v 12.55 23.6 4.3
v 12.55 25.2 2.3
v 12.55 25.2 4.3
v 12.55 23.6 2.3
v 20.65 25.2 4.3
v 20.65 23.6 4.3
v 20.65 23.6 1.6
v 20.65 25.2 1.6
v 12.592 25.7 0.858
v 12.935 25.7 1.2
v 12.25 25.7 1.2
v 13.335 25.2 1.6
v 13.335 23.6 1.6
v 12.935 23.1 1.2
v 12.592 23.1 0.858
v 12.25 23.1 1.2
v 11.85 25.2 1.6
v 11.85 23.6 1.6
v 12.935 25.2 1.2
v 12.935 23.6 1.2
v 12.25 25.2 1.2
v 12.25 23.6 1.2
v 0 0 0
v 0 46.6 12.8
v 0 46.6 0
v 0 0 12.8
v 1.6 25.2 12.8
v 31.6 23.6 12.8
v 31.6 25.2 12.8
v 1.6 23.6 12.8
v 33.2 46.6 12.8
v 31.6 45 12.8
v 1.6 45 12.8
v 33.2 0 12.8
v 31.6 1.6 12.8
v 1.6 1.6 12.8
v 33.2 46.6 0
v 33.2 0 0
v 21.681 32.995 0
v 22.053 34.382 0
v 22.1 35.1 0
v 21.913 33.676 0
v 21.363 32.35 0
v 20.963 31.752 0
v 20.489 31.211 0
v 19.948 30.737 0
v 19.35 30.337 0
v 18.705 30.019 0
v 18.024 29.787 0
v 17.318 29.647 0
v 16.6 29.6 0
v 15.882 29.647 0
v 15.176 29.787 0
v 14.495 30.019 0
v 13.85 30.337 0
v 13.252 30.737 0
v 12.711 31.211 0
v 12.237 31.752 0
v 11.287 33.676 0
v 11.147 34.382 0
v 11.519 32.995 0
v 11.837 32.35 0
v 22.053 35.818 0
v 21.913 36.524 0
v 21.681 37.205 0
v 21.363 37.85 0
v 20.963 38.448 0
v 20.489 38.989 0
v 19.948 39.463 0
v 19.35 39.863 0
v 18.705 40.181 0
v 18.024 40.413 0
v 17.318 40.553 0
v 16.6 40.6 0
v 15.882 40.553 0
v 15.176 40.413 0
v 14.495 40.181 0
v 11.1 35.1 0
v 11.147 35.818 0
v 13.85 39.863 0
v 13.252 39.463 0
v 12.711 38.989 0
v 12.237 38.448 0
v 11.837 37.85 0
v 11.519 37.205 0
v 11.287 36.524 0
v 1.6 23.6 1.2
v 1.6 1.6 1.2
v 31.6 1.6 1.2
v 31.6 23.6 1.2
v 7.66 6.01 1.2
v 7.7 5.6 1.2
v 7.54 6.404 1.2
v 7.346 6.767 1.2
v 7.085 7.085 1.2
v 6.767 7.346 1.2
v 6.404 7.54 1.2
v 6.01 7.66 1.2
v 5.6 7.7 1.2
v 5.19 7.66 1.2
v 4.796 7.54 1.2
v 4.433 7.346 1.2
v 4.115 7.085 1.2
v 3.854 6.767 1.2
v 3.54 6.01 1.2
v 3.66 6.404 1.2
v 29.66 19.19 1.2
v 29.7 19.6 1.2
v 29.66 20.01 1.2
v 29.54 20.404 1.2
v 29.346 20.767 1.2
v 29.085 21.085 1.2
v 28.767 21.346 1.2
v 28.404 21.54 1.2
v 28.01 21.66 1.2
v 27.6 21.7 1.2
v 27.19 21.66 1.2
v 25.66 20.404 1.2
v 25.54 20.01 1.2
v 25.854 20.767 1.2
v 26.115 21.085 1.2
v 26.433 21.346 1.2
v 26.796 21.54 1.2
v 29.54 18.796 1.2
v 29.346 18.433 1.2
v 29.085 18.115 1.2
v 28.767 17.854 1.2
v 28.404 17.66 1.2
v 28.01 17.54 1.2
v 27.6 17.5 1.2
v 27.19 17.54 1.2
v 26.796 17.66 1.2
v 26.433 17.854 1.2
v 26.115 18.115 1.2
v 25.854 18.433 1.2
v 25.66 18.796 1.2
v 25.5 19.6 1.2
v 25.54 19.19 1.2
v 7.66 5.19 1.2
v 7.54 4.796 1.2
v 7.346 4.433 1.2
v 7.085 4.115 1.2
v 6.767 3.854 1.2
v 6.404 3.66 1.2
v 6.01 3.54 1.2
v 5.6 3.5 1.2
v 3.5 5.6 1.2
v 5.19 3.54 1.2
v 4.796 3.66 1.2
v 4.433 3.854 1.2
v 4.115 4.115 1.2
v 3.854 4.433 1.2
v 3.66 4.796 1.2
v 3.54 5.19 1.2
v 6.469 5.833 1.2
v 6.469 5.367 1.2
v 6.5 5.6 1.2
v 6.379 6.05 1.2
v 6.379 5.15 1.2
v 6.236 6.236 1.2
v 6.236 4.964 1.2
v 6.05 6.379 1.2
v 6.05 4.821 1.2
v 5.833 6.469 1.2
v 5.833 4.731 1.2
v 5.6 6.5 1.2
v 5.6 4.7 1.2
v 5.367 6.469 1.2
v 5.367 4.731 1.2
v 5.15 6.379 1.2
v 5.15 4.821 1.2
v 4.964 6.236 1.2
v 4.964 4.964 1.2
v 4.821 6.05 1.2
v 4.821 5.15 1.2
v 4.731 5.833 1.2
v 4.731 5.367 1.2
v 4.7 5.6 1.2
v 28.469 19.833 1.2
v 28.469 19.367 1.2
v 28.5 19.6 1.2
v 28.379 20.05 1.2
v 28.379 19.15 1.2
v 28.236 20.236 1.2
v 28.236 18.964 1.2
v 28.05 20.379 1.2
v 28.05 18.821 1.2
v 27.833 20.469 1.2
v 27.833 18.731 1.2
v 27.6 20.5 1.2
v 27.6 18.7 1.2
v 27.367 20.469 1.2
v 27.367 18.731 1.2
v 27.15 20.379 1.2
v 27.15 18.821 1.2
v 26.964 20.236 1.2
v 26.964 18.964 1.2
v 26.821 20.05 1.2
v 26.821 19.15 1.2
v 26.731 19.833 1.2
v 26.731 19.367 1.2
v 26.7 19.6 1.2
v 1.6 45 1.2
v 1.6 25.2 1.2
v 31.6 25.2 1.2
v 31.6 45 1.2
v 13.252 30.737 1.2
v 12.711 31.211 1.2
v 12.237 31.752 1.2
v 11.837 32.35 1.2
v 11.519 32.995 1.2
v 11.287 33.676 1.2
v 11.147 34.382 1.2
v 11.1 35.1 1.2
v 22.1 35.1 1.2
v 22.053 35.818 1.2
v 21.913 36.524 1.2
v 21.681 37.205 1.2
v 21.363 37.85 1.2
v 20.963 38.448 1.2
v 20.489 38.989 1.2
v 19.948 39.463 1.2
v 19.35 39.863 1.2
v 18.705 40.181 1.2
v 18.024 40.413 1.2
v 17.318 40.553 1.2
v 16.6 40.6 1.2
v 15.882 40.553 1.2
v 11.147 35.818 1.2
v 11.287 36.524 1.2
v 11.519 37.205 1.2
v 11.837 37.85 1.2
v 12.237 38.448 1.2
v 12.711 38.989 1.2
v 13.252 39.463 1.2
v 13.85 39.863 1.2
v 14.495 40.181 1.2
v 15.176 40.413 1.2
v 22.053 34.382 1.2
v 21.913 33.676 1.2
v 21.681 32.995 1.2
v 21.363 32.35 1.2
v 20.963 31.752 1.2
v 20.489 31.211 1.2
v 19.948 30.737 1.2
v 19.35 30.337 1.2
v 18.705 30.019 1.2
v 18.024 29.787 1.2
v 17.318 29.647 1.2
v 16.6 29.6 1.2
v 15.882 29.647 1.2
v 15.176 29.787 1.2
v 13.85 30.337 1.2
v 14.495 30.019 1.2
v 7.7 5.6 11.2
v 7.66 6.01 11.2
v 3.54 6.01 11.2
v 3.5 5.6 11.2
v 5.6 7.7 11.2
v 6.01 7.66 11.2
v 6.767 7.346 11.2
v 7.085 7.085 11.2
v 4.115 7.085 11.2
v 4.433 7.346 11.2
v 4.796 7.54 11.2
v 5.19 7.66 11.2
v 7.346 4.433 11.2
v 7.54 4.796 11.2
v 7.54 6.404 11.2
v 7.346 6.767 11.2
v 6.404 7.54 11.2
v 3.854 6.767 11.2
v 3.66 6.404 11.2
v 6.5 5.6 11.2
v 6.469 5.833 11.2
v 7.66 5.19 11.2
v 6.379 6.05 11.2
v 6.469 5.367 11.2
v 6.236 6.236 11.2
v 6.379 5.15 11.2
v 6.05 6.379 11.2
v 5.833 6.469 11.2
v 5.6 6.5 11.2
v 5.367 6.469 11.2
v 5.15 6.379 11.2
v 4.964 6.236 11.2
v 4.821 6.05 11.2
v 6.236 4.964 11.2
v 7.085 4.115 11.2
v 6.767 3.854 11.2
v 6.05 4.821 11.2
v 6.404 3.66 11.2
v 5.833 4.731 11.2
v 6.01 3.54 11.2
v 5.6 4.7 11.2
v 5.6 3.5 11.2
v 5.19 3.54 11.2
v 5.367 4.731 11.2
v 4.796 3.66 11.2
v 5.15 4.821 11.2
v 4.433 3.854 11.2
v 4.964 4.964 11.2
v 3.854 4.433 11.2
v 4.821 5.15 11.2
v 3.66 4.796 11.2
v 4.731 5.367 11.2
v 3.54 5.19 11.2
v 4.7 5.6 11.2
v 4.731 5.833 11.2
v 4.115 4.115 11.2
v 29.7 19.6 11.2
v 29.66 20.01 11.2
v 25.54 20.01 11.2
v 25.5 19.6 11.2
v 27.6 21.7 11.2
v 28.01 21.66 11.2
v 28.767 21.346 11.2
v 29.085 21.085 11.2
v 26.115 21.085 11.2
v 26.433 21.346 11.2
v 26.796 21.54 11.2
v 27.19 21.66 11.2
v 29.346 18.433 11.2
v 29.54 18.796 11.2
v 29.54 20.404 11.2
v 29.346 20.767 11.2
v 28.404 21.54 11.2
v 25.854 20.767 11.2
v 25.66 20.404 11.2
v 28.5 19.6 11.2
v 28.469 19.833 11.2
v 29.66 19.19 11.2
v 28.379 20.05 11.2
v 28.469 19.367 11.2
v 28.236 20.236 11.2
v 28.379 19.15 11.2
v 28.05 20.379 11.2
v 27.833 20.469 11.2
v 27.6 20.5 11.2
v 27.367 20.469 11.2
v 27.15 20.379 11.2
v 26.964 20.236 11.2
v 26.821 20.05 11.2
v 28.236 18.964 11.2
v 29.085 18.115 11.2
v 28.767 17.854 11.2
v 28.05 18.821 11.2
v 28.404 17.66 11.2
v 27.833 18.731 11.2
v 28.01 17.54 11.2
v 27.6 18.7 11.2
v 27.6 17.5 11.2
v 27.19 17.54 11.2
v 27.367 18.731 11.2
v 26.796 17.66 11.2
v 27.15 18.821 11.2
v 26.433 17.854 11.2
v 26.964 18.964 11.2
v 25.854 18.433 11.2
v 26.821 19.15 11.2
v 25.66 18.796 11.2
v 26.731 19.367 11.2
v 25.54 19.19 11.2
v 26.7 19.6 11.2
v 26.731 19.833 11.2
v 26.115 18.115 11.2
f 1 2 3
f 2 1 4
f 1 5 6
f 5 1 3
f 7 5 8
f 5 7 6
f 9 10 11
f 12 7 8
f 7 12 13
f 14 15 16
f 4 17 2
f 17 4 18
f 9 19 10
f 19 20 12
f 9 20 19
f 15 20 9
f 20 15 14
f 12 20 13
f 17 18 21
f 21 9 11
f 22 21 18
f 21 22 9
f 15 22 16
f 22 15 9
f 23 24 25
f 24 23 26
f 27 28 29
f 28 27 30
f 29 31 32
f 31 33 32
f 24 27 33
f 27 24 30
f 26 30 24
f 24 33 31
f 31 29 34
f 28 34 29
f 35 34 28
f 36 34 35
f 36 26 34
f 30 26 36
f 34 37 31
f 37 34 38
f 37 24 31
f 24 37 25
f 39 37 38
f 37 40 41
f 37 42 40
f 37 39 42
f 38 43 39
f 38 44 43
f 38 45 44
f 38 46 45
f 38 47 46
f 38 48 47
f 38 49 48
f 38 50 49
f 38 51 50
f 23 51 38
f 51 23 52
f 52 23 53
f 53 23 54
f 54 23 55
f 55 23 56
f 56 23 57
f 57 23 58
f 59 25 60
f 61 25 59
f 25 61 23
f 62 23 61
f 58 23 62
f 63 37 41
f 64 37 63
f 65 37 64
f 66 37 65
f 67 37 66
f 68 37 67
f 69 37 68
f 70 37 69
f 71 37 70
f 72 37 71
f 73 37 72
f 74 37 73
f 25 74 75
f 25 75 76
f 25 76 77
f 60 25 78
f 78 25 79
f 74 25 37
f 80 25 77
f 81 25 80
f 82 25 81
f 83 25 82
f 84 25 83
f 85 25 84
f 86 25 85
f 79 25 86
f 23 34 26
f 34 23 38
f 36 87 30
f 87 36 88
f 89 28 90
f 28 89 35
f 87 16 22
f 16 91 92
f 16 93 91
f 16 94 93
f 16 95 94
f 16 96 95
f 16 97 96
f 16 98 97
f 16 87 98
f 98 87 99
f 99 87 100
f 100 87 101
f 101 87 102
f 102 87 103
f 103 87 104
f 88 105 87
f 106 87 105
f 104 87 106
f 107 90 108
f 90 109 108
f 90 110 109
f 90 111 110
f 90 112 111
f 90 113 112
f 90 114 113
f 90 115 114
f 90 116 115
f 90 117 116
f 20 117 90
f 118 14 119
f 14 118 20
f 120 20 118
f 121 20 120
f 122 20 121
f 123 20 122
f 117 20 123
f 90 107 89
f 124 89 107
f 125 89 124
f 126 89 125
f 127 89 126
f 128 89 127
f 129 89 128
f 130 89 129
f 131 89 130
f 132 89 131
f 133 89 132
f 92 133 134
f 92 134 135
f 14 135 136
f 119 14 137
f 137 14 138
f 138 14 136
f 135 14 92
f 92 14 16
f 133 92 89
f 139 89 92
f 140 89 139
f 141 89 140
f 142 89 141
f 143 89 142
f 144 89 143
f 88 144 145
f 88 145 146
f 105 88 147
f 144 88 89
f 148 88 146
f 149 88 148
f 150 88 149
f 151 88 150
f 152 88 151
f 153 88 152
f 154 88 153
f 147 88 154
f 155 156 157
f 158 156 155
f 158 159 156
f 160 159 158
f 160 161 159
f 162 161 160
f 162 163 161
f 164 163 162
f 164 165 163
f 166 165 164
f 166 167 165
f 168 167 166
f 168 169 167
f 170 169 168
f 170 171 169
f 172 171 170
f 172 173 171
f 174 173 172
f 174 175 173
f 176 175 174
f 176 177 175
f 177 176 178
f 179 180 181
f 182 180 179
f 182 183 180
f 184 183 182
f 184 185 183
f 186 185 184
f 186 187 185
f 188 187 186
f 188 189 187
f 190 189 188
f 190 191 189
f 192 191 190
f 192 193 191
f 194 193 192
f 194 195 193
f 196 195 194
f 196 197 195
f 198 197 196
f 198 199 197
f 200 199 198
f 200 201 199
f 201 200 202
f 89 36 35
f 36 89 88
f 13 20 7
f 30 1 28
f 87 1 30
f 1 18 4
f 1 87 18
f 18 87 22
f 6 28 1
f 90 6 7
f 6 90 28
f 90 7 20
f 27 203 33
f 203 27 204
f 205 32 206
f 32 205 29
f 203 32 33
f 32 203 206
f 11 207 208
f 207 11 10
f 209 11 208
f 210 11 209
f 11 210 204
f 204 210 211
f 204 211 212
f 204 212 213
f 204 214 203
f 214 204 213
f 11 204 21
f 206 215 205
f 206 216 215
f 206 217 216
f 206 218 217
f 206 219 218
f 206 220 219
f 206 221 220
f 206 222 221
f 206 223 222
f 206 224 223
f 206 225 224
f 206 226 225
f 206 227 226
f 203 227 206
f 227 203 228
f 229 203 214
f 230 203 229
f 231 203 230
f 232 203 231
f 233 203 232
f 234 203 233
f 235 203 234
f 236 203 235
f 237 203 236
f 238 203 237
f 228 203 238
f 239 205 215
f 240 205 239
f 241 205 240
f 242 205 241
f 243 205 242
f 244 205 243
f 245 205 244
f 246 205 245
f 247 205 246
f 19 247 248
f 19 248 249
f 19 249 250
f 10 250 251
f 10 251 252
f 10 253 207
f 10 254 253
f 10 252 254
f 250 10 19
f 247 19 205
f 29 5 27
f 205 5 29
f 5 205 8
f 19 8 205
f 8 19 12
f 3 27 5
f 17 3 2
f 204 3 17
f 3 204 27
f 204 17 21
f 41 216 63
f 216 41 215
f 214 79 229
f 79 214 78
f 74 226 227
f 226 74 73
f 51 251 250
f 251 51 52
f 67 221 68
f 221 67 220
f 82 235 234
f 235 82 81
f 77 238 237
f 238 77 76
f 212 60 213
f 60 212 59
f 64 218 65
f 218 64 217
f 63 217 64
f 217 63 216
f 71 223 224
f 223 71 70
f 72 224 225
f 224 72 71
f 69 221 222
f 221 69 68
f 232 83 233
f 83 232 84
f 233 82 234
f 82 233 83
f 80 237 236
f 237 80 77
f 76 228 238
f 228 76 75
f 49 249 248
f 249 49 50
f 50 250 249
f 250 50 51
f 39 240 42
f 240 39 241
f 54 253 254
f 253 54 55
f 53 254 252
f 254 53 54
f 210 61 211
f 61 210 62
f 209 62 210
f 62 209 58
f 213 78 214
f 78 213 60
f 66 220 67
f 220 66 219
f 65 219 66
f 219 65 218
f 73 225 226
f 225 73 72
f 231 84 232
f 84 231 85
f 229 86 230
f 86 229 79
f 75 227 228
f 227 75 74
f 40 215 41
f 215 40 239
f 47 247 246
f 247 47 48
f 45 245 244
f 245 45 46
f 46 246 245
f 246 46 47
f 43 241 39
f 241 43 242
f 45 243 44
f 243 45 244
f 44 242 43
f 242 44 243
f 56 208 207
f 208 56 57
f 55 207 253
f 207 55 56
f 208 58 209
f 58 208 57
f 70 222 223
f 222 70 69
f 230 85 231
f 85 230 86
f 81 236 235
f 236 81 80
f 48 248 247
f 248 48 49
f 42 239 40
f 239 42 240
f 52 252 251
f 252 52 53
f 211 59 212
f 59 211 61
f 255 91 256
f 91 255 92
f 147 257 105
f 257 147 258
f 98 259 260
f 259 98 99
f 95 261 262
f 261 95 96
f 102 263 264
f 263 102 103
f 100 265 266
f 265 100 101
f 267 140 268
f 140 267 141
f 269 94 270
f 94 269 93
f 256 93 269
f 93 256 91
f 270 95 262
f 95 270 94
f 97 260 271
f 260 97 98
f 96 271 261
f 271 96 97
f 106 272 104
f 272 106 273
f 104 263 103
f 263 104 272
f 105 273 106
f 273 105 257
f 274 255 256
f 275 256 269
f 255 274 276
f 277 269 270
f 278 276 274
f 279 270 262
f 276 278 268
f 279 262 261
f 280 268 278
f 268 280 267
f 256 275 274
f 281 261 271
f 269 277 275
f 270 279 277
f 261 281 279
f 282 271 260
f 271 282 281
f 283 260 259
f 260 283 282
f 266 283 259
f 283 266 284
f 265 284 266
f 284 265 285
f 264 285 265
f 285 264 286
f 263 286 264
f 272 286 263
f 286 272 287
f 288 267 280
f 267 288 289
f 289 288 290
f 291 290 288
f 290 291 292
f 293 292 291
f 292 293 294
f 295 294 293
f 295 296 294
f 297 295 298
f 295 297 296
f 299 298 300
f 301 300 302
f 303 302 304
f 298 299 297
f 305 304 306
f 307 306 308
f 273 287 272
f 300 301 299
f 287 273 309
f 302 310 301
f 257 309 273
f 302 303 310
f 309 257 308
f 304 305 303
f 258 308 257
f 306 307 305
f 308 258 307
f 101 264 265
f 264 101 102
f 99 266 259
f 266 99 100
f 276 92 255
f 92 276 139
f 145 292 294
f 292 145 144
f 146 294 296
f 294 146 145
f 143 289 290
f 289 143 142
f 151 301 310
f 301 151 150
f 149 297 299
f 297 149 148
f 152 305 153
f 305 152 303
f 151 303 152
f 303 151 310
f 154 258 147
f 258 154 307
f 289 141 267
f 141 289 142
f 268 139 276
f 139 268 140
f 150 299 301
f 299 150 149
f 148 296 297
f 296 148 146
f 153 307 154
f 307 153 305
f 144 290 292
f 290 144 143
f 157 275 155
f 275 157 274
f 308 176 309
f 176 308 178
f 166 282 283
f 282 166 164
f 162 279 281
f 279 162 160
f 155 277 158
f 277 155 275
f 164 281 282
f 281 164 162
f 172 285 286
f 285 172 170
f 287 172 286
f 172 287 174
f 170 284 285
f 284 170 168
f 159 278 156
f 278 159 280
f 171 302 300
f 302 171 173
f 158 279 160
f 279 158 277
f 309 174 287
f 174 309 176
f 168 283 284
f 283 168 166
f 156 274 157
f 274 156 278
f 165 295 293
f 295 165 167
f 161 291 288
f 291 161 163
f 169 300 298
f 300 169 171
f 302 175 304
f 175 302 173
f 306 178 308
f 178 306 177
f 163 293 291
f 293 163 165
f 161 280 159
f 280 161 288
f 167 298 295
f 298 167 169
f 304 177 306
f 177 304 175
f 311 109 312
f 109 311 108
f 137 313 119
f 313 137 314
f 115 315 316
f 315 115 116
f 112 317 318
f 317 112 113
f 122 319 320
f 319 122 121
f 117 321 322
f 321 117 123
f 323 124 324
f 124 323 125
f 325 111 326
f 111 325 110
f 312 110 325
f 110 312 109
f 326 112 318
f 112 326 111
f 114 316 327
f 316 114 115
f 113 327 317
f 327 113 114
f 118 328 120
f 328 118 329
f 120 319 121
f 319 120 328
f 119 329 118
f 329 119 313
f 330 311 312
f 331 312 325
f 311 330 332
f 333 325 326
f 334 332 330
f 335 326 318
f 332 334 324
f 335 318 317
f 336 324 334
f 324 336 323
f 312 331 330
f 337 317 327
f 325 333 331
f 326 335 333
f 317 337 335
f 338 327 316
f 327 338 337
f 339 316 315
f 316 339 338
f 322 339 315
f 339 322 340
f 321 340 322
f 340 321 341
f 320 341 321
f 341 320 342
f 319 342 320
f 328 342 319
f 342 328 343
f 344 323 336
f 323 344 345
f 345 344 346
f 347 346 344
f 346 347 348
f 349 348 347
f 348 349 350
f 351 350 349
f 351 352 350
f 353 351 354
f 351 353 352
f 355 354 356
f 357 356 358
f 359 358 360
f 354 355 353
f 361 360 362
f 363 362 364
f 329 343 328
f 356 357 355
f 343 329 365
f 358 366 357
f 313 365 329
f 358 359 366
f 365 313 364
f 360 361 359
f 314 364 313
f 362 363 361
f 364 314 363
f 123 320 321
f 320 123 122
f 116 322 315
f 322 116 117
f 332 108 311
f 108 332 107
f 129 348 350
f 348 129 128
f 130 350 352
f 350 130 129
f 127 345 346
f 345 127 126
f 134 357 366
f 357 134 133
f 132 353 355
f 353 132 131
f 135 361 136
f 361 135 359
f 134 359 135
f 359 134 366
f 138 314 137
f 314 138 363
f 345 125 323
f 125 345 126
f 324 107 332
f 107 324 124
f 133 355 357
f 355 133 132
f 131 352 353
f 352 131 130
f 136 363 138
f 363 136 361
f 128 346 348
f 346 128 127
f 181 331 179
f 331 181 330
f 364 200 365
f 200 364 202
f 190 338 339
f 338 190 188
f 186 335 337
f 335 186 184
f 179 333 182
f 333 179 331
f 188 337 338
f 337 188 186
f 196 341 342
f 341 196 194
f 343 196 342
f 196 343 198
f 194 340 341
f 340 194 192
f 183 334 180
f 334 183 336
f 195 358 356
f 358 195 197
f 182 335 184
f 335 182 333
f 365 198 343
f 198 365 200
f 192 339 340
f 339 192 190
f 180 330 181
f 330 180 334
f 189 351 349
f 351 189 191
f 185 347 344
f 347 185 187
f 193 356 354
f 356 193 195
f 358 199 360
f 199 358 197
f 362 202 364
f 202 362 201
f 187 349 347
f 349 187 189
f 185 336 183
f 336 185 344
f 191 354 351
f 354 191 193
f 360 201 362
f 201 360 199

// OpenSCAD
// ============================================================
//  Meridian Wrist Array — Satellite Pod v2
//  Rebuilt Aug 2026 | Sean (Whitehorse, YT)
//
//  ** REBUILD NOTICE **
//  The original satellite_pod_v2.scad could not be found on disk.
//  This file was reconstructed from two sources:
//    1. Authored parameter/geometry fragments recovered from past
//       conversation transcripts (marked CONFIRMED below).
//    2. Direct measurement of satellite_pod_v2_side.stl, which you
//       still had. Two values were back-solved from that mesh and
//       are marked DERIVED — trustworthy as dimensions, but the
//       original formulas that produced them are not recovered.
//    3. A few features (screw boss exact placement, lid rim) had no
//       surviving source text at all and are marked REBUILT — these
//       are reasonable reconstructions, not verified originals.
//       Cross-check against your physical prints before reprinting
//       a batch on these.
//
//  Rendered POD_L and POD_H below reproduce the uploaded STL's
//  bounding box exactly (33.2 x 46.6 x 12.8mm) — see the print
//  at the bottom of this file for the live check.
//
//  v2 change (CONFIRMED, from source): LRA pocket placement is a
//  parameter.
//    LRA_SIDE = "end"   -> v1 layout, pocket beyond the chamber's
//                          far end: [ DRV ][ div ][ LRA ]
//    LRA_SIDE = "side"  -> pocket alongside the chamber's long
//                          wall (pod gets wider, shorter):
//                              [ DRV chamber ]
//                              [   divider   ]
//                              [ LRA pocket  ]
//    LRA_X_FRAC slides the LRA along the chamber length in side
//    mode, 0.0 = cable-hole end, 1.0 = far end. NOT recovered from
//    source — set to 0.5 as a placeholder. Re-tune by dry-fitting
//    your DRV board and aligning to its OUT+/OUT- pads before
//    trusting this value.
//
//  NEW in this rebuild: LRA_CONN geometry. A notch through the
//  divider wall sized to the in-line connector on your LRA lead
//  (measured 6.90 x 3.20 x 2.20mm), positioned low near the floor
//  so it stays clear of the lid parting line rather than needing
//  a lid-side channel.
// ============================================================

// ---- Pod variant switch (CONFIRMED) ----
BOARD_TYPE = "drv_lra"; // "drv_lra" or "mux" -- this STL was drv_lra (verified: CHAMBER_L math reproduces measured 33.2mm exactly only with DRV_L, not MUX_L)
LRA_SIDE   = "side";    // "end" or "side"
LRA_X_FRAC = 0.5;       // REBUILT placeholder -- re-tune by dry fit, see note above

// ---- Component dimensions (CONFIRMED) ----
DRV_L = 26;    // Adafruit DRV2605L STEMMA QT board length
DRV_W = 18;    // board width
MUX_L = 31;    // TCA9548A breakout length -- Sean measured
MUX_W = 17.71; // TCA9548A breakout width -- Sean measured
BOARD_CLR = 2; // clearance added around the board, each side

LRA_D = 10;    // LRA diameter (coin-type)
LRA_T = 4;     // LRA thickness
LRA_SKIN_GAP = 1.0; // skin-contact opening = LRA_D + this

HAS_POCKET = (BOARD_TYPE == "drv_lra");
BOARD_L = (BOARD_TYPE == "mux") ? MUX_L : DRV_L;
BOARD_W = (BOARD_TYPE == "mux") ? MUX_W : DRV_W;

// ---- Wall/floor/lid thicknesses (CONFIRMED) ----
WALL  = 1.6;
FLOOR = 1.2;
LID_T = 1.6;
DIVIDER_T = WALL;

// ---- Derived chamber sizes (CONFIRMED formula, CHAMBER_H confirmed) ----
CHAMBER_L = BOARD_L + BOARD_CLR*2;
CHAMBER_W = BOARD_W + BOARD_CLR*2;
CHAMBER_H = 10; // matches puck's rev-4.5 DRV clearance convention; check vs your actual board+header stack

// ---- Pocket sizing (DERIVED from STL -- formula not recovered) ----
POCKET_SPAN = 19.8; // back-solved from measured pod Y=46.6mm; treat as a known-good
                     // number for THIS pod, not a formula to trust for other boards
POCKET_H = CHAMBER_H;

// ---- NEW: LRA connector channel through the divider ----
// Measured connector body: 6.90(L) x 3.20(W) x 2.20(H)mm
CONN_L = 6.90;
CONN_W = 3.20;
CONN_H = 2.20;
CONN_CLR_W = 0.7;   // total width clearance (per side ~0.35, PETG print tolerance)
CONN_CLR_H = 0.5;   // total height clearance -- this one governs lid clash, kept generous
CHANNEL_W = CONN_L + 1.2;      // 9-10mm target: length axis of connector runs along the channel
CHANNEL_H = CONN_H + CONN_CLR_H; // 2.7mm -- fits within DIVIDER_T's adjacent floor zone
CHANNEL_MOUTH_CHAMFER = 0.7;   // chamfer at each channel mouth so the wire jacket doesn't bite on a sharp edge

// Position: aligned with LRA_X_FRAC by default so the channel sits
// right next to wherever the LRA pocket actually lands. Override
// with CHANNEL_X_FRAC if your DRV board's OUT+/OUT- pads are
// somewhere else along the chamber.
CHANNEL_X_FRAC = LRA_X_FRAC;
CHANNEL_X = WALL + (CHAMBER_L - CHANNEL_W) * CHANNEL_X_FRAC;
CHANNEL_Z = FLOOR + 0.4; // low, near the floor -- clear of the lid regardless of LID_T

// ---- Pod outer envelope ----
POD_L = WALL + CHAMBER_L + WALL; // side mode: length axis is just the chamber, unchanged from v1
POD_W = HAS_POCKET && LRA_SIDE == "side"
    ? (WALL + CHAMBER_W + DIVIDER_T + POCKET_SPAN + WALL)
    : (CHAMBER_W + WALL*2);
POD_H = FLOOR + CHAMBER_H + LID_T;

// ---- REBUILT: screw boss geometry (no surviving source text --
//      positions taken from sectioning the uploaded STL directly) ----
BOSS_OD = 4.2;
BOSS_ID = 1.8; // M2 self-tapping pilot, per puck-design convention
BOSS_H  = FLOOR + CHAMBER_H;
BOSS_INSET = 4.0; // approx from mesh section, diagonal corners

module screw_boss(x, y) {
    translate([x, y, 0])
        difference() {
            cylinder(d=BOSS_OD, h=BOSS_H, $fn=32);
            translate([0,0,-0.5]) cylinder(d=BOSS_ID, h=BOSS_H+1, $fn=24);
        }
}

module pod_body() {
    difference() {
        // outer shell
        cube([POD_L, POD_W, POD_H]);

        // main chamber void -- open-top tray (through-cut fix from the
        // July 28 session: +LID_T so no membrane seals the top)
        translate([WALL, WALL, FLOOR])
            cube([CHAMBER_L, CHAMBER_W, CHAMBER_H + LID_T + 1]);

        // LRA pocket void
        if (HAS_POCKET) {
            if (LRA_SIDE == "side") {
                translate([WALL, WALL + CHAMBER_W + DIVIDER_T, FLOOR])
                    cube([CHAMBER_L, POCKET_SPAN, POCKET_H + LID_T + 1]);
            } else {
                translate([WALL + CHAMBER_L + DIVIDER_T, WALL, FLOOR])
                    cube([POCKET_SPAN, CHAMBER_W, POCKET_H + LID_T + 1]);
            }
        }

        // LRA skin window -- through the floor, centered in the pocket
        // at LRA_X_FRAC along the chamber length
        if (HAS_POCKET) {
            lra_cx = WALL + CHAMBER_L * LRA_X_FRAC;
            lra_cy = WALL + CHAMBER_W + DIVIDER_T + POCKET_SPAN/2;
            translate([lra_cx, lra_cy, -0.5])
                cylinder(d=LRA_D + LRA_SKIN_GAP, h=FLOOR+1, $fn=48);
        }

        // NEW: connector channel through the divider, low near the floor
        if (HAS_POCKET && LRA_SIDE == "side") {
            translate([CHANNEL_X, WALL + CHAMBER_W - 0.5, CHANNEL_Z])
                cube([CHANNEL_W, DIVIDER_T + 1, CHANNEL_H]);
            // chamfer both mouths so the wire/connector doesn't ride a sharp edge
            translate([CHANNEL_X - CHANNEL_MOUTH_CHAMFER, WALL + CHAMBER_W - 0.5, CHANNEL_Z])
                rotate([0,45,0])
                    cube([CHANNEL_MOUTH_CHAMFER*1.5, DIVIDER_T + 1, CHANNEL_H]);
        }

        // screw boss pilot holes cut from the outer shell corners
        screw_boss_holes();
    }
    // screw bosses added back as solid posts inside the chamber corners
    translate([WALL, WALL, 0]) screw_boss(BOSS_INSET, BOSS_INSET);
    translate([WALL, WALL, 0]) screw_boss(CHAMBER_L - BOSS_INSET, CHAMBER_W - BOSS_INSET);
}

module screw_boss_holes() {
    // placeholder -- bosses are solid posts with their own pilot hole
    // cut in screw_boss(); nothing additional to subtract here.
}

module pod_lid() {
    // REBUILT -- lid footprint measured off the uploaded STL
    // (33.2 x 42.8 x 1.6mm), inset from the outer wall
    lid_w = POD_W - 3.8; // matches measured lid Y vs body Y difference
    translate([0, 1.9, 0])
        cube([POD_L, lid_w, LID_T]);
}

RENDER = "body"; // "body" | "lid" | "preview"

if (RENDER == "body") pod_body();
else if (RENDER == "lid") pod_lid();
else {
    color("SteelBlue") pod_body();
    color([0.6,0.6,0.9,0.4]) translate([0,0,POD_H - LID_T]) pod_lid();
}

echo("POD_L =", POD_L, " POD_W =", POD_W, " POD_H =", POD_H);
